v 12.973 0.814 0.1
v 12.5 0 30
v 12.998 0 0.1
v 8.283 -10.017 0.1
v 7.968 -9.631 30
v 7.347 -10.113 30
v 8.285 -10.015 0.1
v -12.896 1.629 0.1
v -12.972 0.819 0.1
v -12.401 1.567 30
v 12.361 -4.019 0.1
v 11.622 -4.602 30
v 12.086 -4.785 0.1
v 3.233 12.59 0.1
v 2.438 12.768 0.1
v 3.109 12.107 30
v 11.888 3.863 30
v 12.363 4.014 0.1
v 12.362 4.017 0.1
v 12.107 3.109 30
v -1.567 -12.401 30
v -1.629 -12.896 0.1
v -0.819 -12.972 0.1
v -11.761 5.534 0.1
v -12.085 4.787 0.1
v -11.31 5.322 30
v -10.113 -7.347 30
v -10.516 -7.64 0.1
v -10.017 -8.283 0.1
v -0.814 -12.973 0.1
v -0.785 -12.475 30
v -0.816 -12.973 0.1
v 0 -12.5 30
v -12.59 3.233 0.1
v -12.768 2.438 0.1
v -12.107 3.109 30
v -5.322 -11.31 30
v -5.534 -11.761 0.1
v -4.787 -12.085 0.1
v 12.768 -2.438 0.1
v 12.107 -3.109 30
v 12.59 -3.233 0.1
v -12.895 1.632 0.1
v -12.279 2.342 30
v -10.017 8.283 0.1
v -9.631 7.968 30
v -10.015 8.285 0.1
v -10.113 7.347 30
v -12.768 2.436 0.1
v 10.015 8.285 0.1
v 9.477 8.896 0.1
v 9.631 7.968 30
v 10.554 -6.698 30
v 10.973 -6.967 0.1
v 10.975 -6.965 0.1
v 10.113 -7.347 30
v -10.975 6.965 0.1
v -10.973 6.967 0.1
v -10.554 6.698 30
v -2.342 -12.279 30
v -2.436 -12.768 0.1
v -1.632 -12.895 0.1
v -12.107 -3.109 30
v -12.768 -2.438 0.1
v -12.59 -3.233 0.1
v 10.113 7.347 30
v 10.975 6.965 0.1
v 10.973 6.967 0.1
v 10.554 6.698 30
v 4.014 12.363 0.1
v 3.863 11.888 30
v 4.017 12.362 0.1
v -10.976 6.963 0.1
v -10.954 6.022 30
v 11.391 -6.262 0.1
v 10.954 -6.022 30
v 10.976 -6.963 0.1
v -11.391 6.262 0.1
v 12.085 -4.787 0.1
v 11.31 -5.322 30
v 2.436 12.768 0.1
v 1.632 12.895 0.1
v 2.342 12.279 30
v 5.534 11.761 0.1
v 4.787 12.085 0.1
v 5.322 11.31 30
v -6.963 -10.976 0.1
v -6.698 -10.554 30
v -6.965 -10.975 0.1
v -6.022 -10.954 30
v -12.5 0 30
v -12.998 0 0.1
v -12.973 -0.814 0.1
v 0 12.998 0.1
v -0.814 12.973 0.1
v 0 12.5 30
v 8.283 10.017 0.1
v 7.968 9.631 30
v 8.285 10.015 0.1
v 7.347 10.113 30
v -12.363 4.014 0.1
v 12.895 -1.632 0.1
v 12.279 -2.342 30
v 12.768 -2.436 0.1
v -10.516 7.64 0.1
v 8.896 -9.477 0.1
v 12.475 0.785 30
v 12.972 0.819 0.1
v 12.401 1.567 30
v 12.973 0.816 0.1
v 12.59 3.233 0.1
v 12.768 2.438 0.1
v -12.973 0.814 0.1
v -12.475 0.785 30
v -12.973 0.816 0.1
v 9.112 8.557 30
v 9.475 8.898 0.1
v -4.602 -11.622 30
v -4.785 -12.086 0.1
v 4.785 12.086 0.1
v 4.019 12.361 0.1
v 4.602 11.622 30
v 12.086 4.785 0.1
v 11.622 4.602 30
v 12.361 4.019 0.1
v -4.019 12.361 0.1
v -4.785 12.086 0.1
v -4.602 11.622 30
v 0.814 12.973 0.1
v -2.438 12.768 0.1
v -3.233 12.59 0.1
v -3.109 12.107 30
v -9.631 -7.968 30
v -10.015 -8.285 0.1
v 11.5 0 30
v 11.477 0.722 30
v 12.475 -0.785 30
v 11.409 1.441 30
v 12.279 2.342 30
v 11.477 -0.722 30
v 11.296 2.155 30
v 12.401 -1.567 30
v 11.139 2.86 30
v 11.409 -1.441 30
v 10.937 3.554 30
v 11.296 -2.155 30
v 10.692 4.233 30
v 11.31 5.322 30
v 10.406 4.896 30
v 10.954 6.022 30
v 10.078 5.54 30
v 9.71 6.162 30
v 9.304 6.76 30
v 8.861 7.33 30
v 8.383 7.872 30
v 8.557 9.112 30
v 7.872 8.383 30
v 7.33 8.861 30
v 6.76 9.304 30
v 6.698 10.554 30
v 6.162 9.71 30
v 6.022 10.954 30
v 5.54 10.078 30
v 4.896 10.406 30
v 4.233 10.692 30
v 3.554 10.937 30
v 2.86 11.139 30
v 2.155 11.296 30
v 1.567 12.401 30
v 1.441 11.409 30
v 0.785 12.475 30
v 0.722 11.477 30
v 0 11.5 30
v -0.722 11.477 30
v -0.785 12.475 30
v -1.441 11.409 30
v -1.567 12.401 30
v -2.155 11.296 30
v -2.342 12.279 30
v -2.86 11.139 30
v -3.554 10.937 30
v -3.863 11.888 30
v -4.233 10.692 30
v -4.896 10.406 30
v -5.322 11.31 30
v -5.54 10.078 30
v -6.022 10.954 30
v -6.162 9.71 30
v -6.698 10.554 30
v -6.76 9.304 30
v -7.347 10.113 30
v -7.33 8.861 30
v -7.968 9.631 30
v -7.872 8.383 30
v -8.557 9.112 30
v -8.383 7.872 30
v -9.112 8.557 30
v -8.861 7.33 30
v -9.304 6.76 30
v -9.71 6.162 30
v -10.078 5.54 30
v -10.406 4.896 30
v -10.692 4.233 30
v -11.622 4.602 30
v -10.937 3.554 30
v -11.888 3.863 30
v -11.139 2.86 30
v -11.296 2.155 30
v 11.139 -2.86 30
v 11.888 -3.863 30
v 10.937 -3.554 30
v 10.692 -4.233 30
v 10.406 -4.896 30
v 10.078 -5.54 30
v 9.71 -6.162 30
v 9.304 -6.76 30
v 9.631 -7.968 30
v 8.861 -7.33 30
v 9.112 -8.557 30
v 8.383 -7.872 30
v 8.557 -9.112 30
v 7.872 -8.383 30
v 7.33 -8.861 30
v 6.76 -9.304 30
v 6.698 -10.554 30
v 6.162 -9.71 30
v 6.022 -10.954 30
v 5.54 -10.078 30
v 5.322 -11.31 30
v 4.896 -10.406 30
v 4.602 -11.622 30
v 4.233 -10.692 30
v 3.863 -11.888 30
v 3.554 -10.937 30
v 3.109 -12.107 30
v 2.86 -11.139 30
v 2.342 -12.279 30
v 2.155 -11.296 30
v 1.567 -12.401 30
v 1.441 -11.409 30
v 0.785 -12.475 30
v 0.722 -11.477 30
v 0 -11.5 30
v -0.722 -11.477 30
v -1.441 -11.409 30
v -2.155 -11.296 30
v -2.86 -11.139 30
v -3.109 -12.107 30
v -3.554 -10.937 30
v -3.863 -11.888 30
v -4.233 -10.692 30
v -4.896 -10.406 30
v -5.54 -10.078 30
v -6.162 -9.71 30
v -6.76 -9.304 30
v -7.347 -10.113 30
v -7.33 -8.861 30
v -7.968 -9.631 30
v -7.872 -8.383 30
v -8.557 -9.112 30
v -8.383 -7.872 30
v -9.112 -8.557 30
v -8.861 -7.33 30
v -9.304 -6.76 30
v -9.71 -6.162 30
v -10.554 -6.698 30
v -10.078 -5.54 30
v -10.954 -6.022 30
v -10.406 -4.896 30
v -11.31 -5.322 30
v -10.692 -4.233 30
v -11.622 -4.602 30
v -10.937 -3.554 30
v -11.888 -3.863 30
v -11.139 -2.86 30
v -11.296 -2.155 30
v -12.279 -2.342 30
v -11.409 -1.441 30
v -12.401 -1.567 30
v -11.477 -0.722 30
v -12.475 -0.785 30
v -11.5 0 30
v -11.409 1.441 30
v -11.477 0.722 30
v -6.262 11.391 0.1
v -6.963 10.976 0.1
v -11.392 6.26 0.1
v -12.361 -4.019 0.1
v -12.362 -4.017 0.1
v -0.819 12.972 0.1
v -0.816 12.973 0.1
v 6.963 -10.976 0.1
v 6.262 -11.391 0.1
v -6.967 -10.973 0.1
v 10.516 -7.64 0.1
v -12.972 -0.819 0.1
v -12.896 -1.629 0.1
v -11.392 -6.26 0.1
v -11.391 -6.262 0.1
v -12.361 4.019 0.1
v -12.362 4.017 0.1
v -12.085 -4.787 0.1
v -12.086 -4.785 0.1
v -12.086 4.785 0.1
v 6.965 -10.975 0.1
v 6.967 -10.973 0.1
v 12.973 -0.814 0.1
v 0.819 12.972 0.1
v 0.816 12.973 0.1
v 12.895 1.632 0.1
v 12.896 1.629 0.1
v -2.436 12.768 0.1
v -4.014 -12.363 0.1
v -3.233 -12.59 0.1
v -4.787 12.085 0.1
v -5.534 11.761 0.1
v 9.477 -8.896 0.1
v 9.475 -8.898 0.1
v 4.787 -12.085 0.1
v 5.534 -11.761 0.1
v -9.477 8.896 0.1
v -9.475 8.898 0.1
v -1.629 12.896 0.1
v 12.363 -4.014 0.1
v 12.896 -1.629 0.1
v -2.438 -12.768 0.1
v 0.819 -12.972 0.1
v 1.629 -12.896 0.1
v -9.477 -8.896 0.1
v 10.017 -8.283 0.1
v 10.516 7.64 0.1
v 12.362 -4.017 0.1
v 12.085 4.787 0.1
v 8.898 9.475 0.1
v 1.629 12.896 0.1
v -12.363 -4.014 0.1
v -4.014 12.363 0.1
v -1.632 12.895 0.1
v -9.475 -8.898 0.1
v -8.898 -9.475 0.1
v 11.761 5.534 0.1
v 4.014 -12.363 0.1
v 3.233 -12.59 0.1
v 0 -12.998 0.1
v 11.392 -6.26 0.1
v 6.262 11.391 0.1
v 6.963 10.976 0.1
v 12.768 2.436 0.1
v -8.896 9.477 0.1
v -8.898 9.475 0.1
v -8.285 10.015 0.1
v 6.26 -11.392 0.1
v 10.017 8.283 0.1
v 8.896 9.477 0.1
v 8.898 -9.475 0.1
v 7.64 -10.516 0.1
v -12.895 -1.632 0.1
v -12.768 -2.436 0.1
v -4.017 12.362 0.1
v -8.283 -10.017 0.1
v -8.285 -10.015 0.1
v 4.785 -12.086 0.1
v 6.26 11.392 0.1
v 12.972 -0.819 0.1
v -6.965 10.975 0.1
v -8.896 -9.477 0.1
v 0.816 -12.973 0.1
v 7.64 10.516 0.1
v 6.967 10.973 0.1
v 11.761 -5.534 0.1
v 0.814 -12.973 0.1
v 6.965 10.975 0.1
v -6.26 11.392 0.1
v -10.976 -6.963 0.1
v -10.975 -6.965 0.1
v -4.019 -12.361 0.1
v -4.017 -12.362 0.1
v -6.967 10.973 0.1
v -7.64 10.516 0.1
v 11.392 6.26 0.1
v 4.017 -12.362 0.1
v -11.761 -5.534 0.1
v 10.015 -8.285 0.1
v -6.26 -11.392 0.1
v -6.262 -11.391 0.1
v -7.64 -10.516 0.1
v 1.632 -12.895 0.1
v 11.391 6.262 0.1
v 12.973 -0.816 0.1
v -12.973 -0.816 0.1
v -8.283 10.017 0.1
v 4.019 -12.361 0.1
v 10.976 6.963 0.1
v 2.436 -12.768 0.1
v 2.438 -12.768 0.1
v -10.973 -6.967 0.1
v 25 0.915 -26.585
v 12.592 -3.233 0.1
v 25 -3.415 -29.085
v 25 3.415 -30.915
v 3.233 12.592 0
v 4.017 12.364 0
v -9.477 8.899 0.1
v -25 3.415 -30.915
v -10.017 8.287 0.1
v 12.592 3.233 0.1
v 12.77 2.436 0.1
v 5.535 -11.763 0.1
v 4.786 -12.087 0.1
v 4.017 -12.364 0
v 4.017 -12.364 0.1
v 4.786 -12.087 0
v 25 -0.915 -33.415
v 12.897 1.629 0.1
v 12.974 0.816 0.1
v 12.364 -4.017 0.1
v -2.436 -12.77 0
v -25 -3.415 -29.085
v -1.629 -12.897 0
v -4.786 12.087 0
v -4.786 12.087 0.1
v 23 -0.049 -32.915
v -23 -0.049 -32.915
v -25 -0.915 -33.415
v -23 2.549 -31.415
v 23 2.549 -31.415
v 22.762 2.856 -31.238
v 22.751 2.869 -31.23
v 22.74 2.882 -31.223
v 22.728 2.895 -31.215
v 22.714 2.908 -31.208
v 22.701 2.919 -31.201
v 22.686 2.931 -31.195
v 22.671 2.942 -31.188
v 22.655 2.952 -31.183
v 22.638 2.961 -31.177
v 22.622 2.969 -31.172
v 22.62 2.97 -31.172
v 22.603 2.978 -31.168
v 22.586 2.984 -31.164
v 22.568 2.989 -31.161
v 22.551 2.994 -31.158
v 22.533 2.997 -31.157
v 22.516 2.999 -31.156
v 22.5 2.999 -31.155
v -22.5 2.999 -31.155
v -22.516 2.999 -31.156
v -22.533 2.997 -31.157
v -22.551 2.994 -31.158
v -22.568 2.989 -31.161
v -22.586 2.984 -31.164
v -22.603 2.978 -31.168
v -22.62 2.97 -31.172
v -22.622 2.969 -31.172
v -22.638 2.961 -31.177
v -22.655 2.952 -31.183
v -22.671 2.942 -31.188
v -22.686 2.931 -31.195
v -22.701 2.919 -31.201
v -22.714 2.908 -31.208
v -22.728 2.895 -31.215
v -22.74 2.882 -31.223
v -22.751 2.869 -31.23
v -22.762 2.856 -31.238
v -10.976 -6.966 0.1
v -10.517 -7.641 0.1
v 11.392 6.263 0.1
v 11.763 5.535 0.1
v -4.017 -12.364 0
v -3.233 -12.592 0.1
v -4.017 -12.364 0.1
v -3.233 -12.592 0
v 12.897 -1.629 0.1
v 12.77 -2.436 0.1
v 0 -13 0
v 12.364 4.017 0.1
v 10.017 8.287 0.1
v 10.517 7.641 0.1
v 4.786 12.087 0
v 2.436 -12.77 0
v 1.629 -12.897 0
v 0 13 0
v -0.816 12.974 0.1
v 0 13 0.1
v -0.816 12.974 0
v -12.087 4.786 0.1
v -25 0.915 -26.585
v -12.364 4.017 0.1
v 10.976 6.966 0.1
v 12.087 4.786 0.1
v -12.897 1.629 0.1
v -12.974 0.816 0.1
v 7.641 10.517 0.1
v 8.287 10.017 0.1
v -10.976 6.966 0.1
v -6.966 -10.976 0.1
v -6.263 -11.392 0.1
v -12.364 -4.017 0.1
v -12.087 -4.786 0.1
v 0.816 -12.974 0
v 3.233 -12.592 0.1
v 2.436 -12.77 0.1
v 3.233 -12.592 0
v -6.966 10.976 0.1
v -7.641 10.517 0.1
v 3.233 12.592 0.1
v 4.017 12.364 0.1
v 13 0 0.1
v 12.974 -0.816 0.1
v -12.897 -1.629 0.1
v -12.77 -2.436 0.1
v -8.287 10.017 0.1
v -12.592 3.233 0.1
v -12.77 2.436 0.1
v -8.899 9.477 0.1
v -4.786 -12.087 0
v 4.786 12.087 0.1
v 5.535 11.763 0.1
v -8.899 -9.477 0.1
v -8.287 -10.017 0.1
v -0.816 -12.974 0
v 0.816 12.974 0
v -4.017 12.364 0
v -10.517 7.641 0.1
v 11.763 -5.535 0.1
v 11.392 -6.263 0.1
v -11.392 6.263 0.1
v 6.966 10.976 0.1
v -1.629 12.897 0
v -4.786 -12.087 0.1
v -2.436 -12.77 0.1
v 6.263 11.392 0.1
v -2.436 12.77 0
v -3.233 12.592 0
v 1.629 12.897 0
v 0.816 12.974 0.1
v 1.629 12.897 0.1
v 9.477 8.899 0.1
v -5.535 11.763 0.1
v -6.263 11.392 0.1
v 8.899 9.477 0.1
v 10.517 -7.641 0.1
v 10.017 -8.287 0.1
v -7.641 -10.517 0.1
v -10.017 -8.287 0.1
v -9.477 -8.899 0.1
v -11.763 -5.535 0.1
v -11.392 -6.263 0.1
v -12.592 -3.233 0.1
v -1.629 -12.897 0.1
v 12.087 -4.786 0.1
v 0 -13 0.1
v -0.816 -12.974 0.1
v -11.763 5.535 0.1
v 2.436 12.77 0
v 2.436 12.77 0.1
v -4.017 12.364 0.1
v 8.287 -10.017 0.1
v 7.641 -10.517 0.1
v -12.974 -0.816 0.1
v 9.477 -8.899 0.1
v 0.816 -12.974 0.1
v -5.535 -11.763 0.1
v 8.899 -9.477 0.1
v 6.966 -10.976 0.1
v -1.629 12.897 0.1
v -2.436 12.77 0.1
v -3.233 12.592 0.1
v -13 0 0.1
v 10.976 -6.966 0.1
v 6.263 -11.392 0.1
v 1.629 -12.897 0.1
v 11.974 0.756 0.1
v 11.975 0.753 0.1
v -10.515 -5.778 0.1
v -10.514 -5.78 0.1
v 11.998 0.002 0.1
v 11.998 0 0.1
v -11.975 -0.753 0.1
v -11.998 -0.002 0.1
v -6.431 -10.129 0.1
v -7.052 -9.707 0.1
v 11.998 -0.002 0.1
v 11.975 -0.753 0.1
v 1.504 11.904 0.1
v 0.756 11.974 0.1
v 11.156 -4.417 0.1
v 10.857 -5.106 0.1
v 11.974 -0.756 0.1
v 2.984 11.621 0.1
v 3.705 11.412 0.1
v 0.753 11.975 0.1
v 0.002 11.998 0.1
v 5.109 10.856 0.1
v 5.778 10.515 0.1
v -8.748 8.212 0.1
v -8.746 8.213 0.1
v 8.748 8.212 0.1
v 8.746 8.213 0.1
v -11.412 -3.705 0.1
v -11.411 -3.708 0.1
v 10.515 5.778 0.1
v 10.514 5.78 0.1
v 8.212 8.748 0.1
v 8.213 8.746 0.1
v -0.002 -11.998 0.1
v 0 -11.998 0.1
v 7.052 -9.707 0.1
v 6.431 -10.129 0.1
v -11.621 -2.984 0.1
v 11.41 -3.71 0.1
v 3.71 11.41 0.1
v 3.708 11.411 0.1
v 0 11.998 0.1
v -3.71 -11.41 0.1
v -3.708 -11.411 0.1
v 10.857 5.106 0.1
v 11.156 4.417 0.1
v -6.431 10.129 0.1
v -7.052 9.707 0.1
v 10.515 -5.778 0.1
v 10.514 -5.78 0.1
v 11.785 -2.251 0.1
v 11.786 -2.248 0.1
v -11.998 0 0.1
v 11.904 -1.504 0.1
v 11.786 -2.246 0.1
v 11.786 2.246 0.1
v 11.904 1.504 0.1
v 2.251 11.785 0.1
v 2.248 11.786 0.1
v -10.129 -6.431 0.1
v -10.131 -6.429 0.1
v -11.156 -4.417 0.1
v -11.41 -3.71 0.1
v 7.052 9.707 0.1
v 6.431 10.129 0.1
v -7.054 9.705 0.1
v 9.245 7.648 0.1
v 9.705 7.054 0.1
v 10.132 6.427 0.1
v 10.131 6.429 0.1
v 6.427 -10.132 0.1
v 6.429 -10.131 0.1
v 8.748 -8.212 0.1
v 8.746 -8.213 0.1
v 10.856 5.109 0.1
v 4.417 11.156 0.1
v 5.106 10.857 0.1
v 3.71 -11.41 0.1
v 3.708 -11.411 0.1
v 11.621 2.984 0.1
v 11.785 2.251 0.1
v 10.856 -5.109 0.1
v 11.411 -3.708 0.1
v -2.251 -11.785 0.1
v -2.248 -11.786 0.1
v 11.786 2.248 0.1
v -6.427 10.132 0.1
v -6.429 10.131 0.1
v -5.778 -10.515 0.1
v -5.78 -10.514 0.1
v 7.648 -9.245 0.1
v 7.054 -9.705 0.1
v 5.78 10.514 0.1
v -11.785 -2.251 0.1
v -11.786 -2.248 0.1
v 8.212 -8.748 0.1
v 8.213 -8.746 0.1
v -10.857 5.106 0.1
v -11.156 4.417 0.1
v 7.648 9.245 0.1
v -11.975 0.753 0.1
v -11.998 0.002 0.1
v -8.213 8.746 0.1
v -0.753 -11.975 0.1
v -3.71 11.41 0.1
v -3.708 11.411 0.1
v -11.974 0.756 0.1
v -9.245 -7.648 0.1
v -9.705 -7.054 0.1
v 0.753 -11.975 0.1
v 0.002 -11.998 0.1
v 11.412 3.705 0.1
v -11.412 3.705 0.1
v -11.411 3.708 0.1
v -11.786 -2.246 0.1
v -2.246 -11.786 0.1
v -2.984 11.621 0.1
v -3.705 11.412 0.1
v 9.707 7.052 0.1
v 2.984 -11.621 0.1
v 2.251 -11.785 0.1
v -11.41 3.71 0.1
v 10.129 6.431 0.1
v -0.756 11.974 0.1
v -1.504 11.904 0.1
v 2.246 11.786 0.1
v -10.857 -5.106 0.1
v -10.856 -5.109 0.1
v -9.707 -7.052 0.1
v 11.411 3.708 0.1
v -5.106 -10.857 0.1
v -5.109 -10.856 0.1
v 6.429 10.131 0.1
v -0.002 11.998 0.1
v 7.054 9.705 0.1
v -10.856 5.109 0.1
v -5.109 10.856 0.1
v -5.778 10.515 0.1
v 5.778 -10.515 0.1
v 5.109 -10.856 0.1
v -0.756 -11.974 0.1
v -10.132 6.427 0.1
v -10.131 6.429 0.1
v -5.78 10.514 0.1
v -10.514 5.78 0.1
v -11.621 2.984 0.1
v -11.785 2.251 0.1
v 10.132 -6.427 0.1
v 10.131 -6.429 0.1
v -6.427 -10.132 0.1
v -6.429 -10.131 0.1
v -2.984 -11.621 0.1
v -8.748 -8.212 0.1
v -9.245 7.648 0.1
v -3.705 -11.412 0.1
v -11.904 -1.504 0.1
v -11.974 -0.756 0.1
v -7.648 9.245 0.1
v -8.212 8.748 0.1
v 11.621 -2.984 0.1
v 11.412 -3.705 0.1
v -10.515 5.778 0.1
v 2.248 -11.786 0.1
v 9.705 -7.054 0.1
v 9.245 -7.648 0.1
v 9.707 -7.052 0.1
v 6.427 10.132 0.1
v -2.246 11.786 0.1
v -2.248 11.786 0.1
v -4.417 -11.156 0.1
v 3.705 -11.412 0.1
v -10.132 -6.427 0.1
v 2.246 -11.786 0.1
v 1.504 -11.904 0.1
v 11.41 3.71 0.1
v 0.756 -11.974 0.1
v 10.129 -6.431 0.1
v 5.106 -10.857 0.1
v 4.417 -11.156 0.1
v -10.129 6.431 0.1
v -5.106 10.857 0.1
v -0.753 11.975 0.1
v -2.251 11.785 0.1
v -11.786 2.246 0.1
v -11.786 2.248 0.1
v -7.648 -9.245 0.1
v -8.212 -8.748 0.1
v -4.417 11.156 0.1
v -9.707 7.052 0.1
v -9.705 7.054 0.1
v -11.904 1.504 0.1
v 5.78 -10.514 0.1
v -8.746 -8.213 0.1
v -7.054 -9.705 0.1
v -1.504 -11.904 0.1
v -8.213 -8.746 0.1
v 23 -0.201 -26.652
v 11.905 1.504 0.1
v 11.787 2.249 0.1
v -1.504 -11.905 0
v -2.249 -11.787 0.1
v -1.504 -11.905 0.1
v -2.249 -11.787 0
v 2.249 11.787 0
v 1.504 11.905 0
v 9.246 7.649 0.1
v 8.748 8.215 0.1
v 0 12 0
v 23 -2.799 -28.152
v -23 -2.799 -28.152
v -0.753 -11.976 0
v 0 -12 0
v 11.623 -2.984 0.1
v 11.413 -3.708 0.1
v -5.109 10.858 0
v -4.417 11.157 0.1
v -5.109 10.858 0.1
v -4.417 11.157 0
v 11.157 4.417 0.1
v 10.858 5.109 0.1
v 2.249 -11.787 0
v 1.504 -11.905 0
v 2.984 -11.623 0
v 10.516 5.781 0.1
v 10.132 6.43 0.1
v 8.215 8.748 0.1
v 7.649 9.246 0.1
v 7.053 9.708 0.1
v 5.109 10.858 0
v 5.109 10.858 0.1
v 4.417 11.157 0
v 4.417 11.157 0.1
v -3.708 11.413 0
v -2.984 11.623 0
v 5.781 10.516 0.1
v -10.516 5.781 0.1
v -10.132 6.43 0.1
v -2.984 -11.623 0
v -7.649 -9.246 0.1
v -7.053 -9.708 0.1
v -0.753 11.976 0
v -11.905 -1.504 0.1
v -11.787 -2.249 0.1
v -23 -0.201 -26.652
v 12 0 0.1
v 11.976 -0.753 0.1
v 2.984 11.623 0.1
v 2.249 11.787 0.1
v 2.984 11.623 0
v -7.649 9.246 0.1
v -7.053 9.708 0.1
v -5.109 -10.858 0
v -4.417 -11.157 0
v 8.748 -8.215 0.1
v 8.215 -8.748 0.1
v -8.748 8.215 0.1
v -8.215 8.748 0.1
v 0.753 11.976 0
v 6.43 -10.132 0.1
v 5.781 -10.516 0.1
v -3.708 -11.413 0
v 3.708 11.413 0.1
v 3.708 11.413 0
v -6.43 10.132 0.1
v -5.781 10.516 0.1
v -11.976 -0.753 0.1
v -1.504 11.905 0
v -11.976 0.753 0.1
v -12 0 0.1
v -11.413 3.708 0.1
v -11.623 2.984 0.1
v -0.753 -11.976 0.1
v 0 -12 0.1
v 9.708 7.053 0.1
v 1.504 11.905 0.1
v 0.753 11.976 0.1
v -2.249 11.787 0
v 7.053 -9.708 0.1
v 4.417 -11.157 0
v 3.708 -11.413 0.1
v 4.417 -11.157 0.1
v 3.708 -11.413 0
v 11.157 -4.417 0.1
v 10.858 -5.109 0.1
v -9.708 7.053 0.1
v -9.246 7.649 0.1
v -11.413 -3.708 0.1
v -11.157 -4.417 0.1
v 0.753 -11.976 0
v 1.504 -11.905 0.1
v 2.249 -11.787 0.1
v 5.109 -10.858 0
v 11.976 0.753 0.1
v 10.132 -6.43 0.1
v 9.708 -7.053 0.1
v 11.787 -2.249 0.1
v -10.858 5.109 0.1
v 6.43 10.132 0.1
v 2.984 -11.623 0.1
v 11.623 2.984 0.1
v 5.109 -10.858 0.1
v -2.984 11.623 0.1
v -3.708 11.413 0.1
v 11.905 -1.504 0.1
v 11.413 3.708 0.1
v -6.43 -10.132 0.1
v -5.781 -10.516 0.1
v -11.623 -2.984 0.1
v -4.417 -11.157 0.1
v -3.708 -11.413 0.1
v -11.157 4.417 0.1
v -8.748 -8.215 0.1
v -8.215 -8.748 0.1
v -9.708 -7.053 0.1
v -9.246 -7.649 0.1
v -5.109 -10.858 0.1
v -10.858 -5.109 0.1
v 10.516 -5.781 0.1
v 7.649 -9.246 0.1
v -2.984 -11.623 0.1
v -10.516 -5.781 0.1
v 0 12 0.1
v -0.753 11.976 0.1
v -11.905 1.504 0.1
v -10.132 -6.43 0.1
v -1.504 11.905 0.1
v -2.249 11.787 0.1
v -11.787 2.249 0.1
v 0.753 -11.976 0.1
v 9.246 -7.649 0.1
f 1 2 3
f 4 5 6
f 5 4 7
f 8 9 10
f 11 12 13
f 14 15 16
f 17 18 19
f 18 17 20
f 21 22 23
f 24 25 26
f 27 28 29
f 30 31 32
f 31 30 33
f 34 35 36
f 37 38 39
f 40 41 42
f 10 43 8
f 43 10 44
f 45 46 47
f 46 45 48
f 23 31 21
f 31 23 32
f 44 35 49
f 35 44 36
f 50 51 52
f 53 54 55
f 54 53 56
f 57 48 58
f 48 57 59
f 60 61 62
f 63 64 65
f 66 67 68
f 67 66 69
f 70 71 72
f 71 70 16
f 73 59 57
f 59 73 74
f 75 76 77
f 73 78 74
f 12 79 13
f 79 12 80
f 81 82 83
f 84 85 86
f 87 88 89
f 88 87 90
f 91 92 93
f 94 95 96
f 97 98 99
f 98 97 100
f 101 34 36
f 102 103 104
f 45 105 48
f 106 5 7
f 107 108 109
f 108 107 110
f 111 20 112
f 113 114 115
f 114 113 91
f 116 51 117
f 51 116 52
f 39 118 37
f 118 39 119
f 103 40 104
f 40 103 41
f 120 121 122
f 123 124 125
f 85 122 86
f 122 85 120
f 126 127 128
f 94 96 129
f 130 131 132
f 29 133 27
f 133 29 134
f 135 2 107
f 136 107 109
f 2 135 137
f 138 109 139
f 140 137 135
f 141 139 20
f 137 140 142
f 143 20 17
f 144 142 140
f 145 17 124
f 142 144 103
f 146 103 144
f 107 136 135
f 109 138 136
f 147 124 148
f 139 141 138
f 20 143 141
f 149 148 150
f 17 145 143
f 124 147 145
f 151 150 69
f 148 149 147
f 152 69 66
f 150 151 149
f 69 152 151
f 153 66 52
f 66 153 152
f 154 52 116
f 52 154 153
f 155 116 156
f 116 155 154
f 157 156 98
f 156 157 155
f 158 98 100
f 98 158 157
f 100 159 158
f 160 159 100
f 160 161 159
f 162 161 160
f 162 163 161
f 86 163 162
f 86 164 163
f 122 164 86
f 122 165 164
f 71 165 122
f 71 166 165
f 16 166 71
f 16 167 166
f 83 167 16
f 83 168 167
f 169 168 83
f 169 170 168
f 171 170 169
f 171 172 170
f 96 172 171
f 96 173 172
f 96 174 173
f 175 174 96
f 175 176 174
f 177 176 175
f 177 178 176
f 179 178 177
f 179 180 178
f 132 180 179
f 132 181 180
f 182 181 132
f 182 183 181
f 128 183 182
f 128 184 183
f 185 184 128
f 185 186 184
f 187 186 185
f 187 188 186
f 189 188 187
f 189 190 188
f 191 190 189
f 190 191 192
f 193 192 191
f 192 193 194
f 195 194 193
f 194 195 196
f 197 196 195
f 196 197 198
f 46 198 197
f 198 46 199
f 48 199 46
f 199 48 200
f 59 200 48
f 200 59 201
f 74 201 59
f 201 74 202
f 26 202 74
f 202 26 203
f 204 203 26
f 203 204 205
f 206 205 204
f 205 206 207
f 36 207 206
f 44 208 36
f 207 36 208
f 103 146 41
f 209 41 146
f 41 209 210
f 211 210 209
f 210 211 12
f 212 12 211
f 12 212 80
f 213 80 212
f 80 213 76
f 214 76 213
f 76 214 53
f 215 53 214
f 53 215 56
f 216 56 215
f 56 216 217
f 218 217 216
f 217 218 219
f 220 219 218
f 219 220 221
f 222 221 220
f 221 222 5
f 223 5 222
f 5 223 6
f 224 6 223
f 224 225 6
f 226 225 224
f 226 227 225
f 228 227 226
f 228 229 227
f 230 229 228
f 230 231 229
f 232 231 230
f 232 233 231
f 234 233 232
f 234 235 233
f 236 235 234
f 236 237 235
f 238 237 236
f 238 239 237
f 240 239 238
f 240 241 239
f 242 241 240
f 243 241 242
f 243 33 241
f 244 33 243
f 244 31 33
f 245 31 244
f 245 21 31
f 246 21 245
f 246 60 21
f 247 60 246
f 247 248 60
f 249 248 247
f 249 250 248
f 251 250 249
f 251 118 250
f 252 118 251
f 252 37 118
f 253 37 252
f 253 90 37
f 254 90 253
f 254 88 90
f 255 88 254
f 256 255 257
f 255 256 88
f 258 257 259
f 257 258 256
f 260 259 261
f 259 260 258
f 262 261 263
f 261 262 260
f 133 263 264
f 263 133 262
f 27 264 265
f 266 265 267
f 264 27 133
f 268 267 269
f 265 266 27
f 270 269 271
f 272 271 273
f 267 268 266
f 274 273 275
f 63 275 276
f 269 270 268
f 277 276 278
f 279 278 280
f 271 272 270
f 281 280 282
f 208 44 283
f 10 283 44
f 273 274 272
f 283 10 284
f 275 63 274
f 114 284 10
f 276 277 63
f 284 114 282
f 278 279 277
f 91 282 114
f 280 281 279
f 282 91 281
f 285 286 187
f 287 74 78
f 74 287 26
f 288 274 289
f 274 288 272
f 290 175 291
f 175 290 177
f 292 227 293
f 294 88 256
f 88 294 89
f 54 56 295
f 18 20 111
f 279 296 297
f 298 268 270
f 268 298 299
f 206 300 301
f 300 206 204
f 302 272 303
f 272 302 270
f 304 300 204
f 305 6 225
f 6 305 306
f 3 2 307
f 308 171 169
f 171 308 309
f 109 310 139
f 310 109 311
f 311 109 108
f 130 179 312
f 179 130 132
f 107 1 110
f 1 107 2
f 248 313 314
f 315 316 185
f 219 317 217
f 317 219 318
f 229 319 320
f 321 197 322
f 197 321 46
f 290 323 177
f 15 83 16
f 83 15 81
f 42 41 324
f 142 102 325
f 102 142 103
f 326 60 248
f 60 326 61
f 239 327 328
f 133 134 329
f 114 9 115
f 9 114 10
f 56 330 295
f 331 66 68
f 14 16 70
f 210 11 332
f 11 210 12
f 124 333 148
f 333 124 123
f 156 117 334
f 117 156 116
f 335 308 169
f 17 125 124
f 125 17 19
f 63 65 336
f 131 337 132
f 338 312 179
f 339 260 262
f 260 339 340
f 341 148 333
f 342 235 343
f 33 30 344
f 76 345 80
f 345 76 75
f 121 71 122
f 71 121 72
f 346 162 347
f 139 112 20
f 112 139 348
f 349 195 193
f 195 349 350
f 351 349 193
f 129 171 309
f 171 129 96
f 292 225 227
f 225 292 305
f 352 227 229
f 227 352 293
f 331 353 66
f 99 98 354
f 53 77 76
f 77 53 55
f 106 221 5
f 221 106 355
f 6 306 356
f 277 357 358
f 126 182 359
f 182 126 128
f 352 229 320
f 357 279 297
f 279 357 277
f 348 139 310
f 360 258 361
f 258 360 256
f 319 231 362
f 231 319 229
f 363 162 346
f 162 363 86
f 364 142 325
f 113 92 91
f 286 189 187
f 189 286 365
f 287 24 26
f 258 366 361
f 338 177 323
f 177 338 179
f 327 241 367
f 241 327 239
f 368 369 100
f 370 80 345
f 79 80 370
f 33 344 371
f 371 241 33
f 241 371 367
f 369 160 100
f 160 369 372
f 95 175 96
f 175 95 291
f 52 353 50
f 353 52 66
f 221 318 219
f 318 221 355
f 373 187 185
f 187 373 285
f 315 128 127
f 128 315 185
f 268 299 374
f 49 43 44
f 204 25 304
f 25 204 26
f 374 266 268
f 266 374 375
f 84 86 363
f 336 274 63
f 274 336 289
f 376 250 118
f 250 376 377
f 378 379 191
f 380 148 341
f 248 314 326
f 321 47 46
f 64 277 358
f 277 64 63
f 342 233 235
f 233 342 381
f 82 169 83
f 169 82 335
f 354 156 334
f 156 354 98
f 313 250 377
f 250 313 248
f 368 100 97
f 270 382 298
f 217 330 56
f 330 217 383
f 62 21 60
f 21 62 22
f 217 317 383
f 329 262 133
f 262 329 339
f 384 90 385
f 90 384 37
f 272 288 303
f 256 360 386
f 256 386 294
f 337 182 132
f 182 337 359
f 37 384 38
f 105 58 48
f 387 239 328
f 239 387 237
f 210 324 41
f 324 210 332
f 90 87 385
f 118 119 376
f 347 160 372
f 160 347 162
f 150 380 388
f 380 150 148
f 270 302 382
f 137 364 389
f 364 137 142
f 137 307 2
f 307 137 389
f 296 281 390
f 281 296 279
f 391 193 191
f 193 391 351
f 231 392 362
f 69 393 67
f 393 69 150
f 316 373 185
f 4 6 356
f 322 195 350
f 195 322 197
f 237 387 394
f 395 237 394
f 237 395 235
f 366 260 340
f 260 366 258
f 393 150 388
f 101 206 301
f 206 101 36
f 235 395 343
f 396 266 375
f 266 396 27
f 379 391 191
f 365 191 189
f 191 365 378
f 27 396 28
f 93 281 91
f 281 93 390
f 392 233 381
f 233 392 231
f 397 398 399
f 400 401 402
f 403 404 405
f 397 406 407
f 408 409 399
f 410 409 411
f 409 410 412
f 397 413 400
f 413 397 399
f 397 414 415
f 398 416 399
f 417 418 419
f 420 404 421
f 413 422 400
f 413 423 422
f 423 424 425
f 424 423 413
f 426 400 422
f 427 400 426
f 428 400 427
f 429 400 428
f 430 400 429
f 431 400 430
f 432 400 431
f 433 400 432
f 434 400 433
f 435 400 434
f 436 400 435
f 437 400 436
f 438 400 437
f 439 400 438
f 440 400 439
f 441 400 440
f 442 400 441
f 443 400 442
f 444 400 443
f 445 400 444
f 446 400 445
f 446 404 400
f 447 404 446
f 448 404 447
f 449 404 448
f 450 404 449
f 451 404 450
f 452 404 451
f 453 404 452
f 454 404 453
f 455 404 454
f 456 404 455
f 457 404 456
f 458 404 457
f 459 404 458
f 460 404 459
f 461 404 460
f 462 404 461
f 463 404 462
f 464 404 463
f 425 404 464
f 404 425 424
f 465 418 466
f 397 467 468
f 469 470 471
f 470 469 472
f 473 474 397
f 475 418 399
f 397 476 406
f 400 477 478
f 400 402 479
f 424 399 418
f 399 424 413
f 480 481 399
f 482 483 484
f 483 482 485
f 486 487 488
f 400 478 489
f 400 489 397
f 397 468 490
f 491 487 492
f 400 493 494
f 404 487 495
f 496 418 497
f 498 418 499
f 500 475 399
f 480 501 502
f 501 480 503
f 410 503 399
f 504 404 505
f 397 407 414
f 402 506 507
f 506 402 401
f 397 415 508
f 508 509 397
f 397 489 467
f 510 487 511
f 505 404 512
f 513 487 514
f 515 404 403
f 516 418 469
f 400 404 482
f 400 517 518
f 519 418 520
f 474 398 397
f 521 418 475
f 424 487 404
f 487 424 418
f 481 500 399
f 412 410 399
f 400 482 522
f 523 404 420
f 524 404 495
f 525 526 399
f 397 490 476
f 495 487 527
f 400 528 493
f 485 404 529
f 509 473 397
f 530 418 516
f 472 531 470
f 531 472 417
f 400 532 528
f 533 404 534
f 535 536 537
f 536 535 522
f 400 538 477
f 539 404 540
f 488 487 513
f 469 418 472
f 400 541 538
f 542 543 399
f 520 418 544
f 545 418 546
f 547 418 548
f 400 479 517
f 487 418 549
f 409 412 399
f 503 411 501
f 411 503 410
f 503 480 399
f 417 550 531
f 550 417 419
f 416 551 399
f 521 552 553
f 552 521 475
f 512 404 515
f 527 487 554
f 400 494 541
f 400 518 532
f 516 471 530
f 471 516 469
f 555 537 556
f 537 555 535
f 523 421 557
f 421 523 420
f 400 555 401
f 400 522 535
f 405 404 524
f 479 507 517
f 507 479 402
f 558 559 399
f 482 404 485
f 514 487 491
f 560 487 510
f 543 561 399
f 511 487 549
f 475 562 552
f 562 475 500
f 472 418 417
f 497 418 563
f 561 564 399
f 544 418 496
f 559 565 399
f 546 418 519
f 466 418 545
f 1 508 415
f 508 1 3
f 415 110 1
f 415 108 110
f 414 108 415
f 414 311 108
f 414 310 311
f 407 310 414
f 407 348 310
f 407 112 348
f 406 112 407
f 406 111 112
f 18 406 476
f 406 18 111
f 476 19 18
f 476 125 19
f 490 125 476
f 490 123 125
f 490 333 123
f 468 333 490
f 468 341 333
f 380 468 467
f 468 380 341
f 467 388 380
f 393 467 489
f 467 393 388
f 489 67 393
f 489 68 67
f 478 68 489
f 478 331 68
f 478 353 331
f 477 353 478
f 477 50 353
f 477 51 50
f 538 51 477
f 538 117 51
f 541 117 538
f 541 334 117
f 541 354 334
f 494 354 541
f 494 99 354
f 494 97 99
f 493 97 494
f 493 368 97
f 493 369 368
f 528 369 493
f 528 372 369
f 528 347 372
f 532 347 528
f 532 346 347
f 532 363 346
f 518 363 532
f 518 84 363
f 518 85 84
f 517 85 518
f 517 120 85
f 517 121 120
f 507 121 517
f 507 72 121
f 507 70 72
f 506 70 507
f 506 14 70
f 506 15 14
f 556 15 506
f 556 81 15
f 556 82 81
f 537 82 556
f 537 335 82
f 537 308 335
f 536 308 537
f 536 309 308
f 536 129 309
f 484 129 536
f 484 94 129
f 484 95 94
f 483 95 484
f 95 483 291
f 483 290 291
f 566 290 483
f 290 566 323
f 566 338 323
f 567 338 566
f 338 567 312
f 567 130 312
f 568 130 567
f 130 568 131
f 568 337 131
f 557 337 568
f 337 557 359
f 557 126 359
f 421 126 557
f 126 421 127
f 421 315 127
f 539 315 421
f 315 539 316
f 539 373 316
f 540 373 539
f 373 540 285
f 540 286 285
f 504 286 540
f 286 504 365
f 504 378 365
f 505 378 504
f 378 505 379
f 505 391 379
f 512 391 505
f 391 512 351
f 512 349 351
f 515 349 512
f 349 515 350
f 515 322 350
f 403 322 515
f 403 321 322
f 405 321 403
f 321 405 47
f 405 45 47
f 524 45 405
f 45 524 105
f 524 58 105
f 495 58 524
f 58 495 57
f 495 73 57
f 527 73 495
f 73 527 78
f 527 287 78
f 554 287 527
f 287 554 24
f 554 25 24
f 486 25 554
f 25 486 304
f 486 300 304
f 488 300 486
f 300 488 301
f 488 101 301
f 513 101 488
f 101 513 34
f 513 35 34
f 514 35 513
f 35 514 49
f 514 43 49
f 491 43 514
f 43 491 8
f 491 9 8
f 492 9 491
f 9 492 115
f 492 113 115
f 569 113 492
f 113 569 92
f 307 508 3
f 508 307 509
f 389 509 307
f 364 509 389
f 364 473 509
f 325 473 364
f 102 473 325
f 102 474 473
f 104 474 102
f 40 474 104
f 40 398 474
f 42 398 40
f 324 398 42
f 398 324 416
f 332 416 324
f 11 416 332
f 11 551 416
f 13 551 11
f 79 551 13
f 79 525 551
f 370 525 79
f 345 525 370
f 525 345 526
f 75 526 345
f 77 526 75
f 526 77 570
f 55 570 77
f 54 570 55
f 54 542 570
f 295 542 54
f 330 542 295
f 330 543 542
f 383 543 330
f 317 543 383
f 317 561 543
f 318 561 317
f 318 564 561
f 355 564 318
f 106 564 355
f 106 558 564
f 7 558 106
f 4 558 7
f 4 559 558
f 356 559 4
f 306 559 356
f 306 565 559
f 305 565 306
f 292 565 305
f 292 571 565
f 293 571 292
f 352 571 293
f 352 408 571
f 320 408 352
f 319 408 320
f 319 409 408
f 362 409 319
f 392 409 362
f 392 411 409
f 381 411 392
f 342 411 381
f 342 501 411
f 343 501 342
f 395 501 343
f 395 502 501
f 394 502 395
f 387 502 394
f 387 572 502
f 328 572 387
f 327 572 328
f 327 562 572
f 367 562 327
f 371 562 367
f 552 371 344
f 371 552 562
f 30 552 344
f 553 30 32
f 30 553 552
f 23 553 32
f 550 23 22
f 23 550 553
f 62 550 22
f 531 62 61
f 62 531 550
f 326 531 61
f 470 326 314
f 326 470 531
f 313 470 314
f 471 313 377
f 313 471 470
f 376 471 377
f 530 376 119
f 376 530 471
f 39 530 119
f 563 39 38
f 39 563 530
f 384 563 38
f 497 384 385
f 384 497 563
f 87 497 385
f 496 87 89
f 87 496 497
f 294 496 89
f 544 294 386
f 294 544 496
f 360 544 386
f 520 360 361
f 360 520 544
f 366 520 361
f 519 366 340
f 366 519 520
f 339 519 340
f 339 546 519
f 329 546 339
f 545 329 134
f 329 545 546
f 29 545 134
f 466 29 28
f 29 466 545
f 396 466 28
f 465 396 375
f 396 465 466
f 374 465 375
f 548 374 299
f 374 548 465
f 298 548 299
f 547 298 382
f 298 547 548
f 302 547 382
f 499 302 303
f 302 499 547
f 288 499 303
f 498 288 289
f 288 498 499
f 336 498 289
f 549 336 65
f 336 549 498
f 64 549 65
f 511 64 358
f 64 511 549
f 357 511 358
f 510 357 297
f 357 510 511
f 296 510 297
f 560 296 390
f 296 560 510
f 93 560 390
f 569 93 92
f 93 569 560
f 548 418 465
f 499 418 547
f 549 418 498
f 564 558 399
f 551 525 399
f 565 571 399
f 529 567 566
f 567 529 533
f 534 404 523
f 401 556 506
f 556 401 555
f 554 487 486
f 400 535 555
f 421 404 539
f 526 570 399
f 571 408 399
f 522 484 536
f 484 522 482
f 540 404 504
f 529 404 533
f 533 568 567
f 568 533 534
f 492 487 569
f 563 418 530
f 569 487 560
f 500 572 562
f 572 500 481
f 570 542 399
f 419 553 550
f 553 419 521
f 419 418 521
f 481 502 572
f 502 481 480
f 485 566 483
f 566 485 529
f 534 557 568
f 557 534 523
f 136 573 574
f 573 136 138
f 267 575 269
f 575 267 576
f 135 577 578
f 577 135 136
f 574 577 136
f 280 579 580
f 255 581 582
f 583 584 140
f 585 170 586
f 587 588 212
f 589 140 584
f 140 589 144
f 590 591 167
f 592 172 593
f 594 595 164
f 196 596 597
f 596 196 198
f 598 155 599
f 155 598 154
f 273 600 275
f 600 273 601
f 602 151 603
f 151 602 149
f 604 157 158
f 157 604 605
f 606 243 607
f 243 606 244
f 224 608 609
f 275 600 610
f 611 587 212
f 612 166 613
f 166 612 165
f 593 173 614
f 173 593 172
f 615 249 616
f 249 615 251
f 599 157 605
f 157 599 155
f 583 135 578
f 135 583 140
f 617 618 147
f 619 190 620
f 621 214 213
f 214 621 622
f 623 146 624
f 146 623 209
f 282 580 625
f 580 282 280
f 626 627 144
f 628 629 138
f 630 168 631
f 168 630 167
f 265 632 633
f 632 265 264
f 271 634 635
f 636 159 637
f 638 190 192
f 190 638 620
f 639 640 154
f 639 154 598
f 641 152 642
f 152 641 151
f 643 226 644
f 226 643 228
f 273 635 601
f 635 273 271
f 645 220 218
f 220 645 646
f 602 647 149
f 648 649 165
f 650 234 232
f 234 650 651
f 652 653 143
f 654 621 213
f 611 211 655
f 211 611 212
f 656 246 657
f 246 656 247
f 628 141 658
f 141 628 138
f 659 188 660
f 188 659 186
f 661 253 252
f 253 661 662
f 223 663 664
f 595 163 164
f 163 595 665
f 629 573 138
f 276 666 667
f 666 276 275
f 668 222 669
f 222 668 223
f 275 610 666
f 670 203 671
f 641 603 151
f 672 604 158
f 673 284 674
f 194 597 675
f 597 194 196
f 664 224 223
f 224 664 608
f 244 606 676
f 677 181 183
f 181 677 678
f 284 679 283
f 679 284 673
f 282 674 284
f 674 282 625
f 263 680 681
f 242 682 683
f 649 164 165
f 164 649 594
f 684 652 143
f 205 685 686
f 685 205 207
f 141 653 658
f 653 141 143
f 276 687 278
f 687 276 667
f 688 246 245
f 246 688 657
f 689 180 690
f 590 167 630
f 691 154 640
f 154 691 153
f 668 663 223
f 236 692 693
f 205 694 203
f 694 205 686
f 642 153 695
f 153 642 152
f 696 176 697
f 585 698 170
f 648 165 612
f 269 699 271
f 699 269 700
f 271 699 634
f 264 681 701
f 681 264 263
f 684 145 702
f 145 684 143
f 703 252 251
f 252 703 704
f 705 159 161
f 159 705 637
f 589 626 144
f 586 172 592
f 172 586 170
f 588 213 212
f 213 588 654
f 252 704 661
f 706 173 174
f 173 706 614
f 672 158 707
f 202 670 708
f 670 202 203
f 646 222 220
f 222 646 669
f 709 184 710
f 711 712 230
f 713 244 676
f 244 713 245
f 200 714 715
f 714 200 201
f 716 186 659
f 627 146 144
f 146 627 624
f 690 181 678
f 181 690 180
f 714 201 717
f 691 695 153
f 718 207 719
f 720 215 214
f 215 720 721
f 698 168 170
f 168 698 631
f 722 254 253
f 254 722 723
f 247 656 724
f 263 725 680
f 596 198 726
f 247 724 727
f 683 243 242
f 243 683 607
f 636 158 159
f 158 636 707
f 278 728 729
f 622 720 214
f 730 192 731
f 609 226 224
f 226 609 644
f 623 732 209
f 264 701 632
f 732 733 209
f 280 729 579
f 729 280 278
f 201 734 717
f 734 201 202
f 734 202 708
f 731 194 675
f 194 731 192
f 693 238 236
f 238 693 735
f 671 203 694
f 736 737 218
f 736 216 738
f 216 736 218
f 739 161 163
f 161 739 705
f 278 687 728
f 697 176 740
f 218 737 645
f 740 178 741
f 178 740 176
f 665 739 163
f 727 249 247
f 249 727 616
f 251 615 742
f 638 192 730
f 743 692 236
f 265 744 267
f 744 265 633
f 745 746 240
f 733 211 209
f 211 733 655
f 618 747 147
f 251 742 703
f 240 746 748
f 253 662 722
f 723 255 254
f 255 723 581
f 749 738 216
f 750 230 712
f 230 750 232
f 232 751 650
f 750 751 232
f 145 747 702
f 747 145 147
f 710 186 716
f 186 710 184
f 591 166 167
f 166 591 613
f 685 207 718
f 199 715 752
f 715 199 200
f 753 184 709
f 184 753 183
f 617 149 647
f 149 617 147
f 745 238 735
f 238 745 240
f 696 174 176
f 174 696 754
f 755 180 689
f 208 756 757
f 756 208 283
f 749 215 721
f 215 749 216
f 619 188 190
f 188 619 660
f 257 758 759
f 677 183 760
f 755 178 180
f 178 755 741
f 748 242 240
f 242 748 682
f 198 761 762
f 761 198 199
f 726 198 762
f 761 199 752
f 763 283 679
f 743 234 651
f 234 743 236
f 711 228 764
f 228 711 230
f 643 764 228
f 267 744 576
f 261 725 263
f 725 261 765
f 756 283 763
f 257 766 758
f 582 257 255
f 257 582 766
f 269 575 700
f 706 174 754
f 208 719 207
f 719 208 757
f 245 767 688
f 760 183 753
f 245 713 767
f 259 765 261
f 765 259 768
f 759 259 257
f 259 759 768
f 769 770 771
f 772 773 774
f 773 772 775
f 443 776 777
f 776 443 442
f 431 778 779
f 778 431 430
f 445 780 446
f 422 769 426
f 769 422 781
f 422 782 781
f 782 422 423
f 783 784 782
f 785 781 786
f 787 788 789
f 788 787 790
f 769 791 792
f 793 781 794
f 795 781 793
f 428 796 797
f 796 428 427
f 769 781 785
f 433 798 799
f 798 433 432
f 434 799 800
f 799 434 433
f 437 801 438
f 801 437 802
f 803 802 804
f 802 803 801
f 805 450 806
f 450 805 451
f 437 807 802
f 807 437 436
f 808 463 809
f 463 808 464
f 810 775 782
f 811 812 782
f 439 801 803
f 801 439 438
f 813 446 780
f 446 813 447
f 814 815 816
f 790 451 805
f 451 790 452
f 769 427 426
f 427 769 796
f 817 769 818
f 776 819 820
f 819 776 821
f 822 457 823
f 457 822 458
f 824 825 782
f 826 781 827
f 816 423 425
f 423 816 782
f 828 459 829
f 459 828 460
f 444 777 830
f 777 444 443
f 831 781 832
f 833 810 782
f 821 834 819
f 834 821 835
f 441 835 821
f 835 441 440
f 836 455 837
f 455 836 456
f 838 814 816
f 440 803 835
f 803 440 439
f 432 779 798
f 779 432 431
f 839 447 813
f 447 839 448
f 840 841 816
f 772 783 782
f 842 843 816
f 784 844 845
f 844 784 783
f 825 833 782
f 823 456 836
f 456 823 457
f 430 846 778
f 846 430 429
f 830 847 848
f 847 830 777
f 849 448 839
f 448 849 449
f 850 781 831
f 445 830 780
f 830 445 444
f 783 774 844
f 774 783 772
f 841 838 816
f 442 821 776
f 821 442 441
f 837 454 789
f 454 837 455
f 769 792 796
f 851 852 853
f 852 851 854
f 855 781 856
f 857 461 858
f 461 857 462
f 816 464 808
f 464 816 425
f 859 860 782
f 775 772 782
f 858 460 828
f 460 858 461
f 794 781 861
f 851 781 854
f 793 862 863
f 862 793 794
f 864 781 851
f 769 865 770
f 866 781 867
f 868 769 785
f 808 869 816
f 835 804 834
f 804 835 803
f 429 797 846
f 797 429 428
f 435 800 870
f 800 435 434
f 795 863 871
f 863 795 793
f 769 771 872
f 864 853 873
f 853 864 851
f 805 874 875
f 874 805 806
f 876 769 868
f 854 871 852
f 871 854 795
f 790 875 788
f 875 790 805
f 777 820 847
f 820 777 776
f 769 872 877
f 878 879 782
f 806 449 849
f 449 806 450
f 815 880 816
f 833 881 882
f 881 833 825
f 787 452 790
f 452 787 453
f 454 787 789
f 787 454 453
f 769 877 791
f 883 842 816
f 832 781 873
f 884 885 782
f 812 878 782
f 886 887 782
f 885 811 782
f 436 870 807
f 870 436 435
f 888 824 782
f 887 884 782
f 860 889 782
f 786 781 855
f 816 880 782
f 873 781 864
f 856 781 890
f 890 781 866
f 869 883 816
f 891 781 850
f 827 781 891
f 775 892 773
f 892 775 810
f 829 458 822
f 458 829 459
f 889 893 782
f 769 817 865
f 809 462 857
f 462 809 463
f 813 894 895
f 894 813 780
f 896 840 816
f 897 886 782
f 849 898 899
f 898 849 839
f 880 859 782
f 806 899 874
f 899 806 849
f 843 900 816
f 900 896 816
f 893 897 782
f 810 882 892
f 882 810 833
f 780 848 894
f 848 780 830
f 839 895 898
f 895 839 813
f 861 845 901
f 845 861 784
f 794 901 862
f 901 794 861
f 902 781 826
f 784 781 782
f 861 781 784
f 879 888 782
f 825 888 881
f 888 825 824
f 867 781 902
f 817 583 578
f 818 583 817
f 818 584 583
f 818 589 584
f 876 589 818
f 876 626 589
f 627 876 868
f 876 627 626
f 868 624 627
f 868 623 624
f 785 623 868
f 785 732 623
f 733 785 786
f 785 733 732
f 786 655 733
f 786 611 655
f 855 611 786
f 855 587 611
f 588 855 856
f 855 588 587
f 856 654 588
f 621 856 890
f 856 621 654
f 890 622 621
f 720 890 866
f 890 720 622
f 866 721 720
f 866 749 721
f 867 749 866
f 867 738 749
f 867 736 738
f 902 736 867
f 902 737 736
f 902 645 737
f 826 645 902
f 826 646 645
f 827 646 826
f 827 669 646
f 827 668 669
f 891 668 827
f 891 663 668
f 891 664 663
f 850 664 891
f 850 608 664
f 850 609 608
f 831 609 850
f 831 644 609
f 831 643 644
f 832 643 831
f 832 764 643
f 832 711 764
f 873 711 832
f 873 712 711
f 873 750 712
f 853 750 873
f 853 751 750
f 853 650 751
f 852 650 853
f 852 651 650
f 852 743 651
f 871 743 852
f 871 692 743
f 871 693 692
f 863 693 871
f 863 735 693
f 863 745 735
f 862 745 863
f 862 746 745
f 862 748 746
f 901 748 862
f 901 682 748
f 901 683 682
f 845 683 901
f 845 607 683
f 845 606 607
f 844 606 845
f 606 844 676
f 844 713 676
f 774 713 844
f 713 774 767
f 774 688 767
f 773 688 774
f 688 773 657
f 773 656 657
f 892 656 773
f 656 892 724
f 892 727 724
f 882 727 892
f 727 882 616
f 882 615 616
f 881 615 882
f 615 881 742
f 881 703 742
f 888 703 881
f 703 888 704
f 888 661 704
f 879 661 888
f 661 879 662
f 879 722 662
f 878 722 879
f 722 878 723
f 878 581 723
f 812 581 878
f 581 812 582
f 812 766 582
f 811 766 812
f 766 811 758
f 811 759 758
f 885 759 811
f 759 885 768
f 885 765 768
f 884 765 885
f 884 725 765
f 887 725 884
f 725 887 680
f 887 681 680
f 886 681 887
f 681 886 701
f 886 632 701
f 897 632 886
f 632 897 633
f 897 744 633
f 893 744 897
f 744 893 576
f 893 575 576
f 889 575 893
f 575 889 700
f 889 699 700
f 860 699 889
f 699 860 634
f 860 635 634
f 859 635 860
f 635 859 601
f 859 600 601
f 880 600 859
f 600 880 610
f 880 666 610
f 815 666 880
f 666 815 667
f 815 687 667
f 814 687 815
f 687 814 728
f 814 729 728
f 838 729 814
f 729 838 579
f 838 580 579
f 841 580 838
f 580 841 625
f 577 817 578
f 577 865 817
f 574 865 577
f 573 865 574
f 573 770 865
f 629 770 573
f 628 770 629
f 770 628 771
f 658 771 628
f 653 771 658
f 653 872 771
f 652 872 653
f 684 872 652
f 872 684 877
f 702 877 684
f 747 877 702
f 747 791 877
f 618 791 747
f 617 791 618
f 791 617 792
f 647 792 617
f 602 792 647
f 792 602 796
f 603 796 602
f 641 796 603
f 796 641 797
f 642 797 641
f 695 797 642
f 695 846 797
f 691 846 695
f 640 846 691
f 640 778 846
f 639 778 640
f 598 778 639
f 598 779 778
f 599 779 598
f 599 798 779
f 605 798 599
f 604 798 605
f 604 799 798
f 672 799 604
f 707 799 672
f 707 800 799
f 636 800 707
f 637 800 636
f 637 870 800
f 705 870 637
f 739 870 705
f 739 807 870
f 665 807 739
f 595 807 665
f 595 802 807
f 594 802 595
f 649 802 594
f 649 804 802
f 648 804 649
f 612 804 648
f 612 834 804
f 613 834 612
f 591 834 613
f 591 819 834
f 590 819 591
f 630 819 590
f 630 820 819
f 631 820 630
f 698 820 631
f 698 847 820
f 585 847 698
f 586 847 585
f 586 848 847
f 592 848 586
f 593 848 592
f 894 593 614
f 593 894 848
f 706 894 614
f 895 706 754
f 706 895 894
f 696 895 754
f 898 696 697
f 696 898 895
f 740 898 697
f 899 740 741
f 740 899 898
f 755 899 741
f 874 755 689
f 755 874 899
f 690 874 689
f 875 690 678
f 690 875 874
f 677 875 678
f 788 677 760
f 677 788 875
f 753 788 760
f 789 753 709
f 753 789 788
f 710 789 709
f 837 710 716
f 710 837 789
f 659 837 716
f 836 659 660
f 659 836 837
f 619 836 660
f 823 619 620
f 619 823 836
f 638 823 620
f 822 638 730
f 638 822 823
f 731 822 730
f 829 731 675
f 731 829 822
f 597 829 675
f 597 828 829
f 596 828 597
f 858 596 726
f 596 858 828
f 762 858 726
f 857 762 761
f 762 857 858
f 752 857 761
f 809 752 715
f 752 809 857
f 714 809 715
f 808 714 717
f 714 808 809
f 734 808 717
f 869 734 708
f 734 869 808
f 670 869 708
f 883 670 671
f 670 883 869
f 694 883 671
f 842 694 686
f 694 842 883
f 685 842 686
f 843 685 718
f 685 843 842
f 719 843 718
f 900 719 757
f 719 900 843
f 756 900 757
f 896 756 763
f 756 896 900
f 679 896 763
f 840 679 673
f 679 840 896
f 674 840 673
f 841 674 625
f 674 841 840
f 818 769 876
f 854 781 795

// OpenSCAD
//
// ktKILLIFISH6
//
 
gap1 = 0.001;
gap2 = 0.002;
th = 2;

PR = 25;
PRB = PR+1;
 
difference()
{
    union()
    {
        translate([0, 0, 0]) rotate([0, 0, 0]) cylinder(r1=PRB/2, r2=PR/2, h=30, $fn=100);
       
        hull(){
            translate([0, 0, 0]) rotate([0, 0, 0]) cylinder(r=PRB/2, h=0.1, $fn=100);
            translate([0, 0, -30]) rotate([30, 0, 0]) cube([50, 5, 5], center=true);
        }
    }
   
    translate([0, 0, 0]) rotate([0, 0, 0]) cylinder(r1=(PRB-th)/2, r2=(PR-th)/2,  h=30, $fn=100);
   
    hull(){
        translate([0, 0, 0]) rotate([0, 0, 0]) cylinder(r=(PRB-th)/2, h=0.1, $fn=100);
        translate([0, 0, -30]) rotate([30, 0, 0]) cube([50-th*2, 5-th, 5+1], center=true);
    }
}



/*
difference()
{
    union()
    {
        translate([-615/2, -460/2, 0]) cube([615, 460, 547]);
        
        translate([-600/2, -455/2, 547+185-30]) cube([600, 455, 30]);
        translate([0, 0, 547]) hull(){
            translate([-560/2, -430/2, 185])  cube([560, 430, 1]);
            translate([-497/2, -360/2, 0]) cube([497, 360, 1]);
        }
    }
    
    #translate([-615/2+85, 460/2-85, 547-50]) cylinder(r=90/2, h=100, $fn=10);
    #translate([615/2-85, 460/2-85, 547-50]) cylinder(r=90/2, h=100, $fn=10);

    translate([0, 0, 547+gap2]) hull(){
            translate([-(560-5)/2, -(430-5)/2, 185])  cube([560-5, 430-5, 1]);
            translate([-(497-5)/2, -(360-5)/2, 5]) cube([497-5, 360-5, 1]);
        }
}
*/
